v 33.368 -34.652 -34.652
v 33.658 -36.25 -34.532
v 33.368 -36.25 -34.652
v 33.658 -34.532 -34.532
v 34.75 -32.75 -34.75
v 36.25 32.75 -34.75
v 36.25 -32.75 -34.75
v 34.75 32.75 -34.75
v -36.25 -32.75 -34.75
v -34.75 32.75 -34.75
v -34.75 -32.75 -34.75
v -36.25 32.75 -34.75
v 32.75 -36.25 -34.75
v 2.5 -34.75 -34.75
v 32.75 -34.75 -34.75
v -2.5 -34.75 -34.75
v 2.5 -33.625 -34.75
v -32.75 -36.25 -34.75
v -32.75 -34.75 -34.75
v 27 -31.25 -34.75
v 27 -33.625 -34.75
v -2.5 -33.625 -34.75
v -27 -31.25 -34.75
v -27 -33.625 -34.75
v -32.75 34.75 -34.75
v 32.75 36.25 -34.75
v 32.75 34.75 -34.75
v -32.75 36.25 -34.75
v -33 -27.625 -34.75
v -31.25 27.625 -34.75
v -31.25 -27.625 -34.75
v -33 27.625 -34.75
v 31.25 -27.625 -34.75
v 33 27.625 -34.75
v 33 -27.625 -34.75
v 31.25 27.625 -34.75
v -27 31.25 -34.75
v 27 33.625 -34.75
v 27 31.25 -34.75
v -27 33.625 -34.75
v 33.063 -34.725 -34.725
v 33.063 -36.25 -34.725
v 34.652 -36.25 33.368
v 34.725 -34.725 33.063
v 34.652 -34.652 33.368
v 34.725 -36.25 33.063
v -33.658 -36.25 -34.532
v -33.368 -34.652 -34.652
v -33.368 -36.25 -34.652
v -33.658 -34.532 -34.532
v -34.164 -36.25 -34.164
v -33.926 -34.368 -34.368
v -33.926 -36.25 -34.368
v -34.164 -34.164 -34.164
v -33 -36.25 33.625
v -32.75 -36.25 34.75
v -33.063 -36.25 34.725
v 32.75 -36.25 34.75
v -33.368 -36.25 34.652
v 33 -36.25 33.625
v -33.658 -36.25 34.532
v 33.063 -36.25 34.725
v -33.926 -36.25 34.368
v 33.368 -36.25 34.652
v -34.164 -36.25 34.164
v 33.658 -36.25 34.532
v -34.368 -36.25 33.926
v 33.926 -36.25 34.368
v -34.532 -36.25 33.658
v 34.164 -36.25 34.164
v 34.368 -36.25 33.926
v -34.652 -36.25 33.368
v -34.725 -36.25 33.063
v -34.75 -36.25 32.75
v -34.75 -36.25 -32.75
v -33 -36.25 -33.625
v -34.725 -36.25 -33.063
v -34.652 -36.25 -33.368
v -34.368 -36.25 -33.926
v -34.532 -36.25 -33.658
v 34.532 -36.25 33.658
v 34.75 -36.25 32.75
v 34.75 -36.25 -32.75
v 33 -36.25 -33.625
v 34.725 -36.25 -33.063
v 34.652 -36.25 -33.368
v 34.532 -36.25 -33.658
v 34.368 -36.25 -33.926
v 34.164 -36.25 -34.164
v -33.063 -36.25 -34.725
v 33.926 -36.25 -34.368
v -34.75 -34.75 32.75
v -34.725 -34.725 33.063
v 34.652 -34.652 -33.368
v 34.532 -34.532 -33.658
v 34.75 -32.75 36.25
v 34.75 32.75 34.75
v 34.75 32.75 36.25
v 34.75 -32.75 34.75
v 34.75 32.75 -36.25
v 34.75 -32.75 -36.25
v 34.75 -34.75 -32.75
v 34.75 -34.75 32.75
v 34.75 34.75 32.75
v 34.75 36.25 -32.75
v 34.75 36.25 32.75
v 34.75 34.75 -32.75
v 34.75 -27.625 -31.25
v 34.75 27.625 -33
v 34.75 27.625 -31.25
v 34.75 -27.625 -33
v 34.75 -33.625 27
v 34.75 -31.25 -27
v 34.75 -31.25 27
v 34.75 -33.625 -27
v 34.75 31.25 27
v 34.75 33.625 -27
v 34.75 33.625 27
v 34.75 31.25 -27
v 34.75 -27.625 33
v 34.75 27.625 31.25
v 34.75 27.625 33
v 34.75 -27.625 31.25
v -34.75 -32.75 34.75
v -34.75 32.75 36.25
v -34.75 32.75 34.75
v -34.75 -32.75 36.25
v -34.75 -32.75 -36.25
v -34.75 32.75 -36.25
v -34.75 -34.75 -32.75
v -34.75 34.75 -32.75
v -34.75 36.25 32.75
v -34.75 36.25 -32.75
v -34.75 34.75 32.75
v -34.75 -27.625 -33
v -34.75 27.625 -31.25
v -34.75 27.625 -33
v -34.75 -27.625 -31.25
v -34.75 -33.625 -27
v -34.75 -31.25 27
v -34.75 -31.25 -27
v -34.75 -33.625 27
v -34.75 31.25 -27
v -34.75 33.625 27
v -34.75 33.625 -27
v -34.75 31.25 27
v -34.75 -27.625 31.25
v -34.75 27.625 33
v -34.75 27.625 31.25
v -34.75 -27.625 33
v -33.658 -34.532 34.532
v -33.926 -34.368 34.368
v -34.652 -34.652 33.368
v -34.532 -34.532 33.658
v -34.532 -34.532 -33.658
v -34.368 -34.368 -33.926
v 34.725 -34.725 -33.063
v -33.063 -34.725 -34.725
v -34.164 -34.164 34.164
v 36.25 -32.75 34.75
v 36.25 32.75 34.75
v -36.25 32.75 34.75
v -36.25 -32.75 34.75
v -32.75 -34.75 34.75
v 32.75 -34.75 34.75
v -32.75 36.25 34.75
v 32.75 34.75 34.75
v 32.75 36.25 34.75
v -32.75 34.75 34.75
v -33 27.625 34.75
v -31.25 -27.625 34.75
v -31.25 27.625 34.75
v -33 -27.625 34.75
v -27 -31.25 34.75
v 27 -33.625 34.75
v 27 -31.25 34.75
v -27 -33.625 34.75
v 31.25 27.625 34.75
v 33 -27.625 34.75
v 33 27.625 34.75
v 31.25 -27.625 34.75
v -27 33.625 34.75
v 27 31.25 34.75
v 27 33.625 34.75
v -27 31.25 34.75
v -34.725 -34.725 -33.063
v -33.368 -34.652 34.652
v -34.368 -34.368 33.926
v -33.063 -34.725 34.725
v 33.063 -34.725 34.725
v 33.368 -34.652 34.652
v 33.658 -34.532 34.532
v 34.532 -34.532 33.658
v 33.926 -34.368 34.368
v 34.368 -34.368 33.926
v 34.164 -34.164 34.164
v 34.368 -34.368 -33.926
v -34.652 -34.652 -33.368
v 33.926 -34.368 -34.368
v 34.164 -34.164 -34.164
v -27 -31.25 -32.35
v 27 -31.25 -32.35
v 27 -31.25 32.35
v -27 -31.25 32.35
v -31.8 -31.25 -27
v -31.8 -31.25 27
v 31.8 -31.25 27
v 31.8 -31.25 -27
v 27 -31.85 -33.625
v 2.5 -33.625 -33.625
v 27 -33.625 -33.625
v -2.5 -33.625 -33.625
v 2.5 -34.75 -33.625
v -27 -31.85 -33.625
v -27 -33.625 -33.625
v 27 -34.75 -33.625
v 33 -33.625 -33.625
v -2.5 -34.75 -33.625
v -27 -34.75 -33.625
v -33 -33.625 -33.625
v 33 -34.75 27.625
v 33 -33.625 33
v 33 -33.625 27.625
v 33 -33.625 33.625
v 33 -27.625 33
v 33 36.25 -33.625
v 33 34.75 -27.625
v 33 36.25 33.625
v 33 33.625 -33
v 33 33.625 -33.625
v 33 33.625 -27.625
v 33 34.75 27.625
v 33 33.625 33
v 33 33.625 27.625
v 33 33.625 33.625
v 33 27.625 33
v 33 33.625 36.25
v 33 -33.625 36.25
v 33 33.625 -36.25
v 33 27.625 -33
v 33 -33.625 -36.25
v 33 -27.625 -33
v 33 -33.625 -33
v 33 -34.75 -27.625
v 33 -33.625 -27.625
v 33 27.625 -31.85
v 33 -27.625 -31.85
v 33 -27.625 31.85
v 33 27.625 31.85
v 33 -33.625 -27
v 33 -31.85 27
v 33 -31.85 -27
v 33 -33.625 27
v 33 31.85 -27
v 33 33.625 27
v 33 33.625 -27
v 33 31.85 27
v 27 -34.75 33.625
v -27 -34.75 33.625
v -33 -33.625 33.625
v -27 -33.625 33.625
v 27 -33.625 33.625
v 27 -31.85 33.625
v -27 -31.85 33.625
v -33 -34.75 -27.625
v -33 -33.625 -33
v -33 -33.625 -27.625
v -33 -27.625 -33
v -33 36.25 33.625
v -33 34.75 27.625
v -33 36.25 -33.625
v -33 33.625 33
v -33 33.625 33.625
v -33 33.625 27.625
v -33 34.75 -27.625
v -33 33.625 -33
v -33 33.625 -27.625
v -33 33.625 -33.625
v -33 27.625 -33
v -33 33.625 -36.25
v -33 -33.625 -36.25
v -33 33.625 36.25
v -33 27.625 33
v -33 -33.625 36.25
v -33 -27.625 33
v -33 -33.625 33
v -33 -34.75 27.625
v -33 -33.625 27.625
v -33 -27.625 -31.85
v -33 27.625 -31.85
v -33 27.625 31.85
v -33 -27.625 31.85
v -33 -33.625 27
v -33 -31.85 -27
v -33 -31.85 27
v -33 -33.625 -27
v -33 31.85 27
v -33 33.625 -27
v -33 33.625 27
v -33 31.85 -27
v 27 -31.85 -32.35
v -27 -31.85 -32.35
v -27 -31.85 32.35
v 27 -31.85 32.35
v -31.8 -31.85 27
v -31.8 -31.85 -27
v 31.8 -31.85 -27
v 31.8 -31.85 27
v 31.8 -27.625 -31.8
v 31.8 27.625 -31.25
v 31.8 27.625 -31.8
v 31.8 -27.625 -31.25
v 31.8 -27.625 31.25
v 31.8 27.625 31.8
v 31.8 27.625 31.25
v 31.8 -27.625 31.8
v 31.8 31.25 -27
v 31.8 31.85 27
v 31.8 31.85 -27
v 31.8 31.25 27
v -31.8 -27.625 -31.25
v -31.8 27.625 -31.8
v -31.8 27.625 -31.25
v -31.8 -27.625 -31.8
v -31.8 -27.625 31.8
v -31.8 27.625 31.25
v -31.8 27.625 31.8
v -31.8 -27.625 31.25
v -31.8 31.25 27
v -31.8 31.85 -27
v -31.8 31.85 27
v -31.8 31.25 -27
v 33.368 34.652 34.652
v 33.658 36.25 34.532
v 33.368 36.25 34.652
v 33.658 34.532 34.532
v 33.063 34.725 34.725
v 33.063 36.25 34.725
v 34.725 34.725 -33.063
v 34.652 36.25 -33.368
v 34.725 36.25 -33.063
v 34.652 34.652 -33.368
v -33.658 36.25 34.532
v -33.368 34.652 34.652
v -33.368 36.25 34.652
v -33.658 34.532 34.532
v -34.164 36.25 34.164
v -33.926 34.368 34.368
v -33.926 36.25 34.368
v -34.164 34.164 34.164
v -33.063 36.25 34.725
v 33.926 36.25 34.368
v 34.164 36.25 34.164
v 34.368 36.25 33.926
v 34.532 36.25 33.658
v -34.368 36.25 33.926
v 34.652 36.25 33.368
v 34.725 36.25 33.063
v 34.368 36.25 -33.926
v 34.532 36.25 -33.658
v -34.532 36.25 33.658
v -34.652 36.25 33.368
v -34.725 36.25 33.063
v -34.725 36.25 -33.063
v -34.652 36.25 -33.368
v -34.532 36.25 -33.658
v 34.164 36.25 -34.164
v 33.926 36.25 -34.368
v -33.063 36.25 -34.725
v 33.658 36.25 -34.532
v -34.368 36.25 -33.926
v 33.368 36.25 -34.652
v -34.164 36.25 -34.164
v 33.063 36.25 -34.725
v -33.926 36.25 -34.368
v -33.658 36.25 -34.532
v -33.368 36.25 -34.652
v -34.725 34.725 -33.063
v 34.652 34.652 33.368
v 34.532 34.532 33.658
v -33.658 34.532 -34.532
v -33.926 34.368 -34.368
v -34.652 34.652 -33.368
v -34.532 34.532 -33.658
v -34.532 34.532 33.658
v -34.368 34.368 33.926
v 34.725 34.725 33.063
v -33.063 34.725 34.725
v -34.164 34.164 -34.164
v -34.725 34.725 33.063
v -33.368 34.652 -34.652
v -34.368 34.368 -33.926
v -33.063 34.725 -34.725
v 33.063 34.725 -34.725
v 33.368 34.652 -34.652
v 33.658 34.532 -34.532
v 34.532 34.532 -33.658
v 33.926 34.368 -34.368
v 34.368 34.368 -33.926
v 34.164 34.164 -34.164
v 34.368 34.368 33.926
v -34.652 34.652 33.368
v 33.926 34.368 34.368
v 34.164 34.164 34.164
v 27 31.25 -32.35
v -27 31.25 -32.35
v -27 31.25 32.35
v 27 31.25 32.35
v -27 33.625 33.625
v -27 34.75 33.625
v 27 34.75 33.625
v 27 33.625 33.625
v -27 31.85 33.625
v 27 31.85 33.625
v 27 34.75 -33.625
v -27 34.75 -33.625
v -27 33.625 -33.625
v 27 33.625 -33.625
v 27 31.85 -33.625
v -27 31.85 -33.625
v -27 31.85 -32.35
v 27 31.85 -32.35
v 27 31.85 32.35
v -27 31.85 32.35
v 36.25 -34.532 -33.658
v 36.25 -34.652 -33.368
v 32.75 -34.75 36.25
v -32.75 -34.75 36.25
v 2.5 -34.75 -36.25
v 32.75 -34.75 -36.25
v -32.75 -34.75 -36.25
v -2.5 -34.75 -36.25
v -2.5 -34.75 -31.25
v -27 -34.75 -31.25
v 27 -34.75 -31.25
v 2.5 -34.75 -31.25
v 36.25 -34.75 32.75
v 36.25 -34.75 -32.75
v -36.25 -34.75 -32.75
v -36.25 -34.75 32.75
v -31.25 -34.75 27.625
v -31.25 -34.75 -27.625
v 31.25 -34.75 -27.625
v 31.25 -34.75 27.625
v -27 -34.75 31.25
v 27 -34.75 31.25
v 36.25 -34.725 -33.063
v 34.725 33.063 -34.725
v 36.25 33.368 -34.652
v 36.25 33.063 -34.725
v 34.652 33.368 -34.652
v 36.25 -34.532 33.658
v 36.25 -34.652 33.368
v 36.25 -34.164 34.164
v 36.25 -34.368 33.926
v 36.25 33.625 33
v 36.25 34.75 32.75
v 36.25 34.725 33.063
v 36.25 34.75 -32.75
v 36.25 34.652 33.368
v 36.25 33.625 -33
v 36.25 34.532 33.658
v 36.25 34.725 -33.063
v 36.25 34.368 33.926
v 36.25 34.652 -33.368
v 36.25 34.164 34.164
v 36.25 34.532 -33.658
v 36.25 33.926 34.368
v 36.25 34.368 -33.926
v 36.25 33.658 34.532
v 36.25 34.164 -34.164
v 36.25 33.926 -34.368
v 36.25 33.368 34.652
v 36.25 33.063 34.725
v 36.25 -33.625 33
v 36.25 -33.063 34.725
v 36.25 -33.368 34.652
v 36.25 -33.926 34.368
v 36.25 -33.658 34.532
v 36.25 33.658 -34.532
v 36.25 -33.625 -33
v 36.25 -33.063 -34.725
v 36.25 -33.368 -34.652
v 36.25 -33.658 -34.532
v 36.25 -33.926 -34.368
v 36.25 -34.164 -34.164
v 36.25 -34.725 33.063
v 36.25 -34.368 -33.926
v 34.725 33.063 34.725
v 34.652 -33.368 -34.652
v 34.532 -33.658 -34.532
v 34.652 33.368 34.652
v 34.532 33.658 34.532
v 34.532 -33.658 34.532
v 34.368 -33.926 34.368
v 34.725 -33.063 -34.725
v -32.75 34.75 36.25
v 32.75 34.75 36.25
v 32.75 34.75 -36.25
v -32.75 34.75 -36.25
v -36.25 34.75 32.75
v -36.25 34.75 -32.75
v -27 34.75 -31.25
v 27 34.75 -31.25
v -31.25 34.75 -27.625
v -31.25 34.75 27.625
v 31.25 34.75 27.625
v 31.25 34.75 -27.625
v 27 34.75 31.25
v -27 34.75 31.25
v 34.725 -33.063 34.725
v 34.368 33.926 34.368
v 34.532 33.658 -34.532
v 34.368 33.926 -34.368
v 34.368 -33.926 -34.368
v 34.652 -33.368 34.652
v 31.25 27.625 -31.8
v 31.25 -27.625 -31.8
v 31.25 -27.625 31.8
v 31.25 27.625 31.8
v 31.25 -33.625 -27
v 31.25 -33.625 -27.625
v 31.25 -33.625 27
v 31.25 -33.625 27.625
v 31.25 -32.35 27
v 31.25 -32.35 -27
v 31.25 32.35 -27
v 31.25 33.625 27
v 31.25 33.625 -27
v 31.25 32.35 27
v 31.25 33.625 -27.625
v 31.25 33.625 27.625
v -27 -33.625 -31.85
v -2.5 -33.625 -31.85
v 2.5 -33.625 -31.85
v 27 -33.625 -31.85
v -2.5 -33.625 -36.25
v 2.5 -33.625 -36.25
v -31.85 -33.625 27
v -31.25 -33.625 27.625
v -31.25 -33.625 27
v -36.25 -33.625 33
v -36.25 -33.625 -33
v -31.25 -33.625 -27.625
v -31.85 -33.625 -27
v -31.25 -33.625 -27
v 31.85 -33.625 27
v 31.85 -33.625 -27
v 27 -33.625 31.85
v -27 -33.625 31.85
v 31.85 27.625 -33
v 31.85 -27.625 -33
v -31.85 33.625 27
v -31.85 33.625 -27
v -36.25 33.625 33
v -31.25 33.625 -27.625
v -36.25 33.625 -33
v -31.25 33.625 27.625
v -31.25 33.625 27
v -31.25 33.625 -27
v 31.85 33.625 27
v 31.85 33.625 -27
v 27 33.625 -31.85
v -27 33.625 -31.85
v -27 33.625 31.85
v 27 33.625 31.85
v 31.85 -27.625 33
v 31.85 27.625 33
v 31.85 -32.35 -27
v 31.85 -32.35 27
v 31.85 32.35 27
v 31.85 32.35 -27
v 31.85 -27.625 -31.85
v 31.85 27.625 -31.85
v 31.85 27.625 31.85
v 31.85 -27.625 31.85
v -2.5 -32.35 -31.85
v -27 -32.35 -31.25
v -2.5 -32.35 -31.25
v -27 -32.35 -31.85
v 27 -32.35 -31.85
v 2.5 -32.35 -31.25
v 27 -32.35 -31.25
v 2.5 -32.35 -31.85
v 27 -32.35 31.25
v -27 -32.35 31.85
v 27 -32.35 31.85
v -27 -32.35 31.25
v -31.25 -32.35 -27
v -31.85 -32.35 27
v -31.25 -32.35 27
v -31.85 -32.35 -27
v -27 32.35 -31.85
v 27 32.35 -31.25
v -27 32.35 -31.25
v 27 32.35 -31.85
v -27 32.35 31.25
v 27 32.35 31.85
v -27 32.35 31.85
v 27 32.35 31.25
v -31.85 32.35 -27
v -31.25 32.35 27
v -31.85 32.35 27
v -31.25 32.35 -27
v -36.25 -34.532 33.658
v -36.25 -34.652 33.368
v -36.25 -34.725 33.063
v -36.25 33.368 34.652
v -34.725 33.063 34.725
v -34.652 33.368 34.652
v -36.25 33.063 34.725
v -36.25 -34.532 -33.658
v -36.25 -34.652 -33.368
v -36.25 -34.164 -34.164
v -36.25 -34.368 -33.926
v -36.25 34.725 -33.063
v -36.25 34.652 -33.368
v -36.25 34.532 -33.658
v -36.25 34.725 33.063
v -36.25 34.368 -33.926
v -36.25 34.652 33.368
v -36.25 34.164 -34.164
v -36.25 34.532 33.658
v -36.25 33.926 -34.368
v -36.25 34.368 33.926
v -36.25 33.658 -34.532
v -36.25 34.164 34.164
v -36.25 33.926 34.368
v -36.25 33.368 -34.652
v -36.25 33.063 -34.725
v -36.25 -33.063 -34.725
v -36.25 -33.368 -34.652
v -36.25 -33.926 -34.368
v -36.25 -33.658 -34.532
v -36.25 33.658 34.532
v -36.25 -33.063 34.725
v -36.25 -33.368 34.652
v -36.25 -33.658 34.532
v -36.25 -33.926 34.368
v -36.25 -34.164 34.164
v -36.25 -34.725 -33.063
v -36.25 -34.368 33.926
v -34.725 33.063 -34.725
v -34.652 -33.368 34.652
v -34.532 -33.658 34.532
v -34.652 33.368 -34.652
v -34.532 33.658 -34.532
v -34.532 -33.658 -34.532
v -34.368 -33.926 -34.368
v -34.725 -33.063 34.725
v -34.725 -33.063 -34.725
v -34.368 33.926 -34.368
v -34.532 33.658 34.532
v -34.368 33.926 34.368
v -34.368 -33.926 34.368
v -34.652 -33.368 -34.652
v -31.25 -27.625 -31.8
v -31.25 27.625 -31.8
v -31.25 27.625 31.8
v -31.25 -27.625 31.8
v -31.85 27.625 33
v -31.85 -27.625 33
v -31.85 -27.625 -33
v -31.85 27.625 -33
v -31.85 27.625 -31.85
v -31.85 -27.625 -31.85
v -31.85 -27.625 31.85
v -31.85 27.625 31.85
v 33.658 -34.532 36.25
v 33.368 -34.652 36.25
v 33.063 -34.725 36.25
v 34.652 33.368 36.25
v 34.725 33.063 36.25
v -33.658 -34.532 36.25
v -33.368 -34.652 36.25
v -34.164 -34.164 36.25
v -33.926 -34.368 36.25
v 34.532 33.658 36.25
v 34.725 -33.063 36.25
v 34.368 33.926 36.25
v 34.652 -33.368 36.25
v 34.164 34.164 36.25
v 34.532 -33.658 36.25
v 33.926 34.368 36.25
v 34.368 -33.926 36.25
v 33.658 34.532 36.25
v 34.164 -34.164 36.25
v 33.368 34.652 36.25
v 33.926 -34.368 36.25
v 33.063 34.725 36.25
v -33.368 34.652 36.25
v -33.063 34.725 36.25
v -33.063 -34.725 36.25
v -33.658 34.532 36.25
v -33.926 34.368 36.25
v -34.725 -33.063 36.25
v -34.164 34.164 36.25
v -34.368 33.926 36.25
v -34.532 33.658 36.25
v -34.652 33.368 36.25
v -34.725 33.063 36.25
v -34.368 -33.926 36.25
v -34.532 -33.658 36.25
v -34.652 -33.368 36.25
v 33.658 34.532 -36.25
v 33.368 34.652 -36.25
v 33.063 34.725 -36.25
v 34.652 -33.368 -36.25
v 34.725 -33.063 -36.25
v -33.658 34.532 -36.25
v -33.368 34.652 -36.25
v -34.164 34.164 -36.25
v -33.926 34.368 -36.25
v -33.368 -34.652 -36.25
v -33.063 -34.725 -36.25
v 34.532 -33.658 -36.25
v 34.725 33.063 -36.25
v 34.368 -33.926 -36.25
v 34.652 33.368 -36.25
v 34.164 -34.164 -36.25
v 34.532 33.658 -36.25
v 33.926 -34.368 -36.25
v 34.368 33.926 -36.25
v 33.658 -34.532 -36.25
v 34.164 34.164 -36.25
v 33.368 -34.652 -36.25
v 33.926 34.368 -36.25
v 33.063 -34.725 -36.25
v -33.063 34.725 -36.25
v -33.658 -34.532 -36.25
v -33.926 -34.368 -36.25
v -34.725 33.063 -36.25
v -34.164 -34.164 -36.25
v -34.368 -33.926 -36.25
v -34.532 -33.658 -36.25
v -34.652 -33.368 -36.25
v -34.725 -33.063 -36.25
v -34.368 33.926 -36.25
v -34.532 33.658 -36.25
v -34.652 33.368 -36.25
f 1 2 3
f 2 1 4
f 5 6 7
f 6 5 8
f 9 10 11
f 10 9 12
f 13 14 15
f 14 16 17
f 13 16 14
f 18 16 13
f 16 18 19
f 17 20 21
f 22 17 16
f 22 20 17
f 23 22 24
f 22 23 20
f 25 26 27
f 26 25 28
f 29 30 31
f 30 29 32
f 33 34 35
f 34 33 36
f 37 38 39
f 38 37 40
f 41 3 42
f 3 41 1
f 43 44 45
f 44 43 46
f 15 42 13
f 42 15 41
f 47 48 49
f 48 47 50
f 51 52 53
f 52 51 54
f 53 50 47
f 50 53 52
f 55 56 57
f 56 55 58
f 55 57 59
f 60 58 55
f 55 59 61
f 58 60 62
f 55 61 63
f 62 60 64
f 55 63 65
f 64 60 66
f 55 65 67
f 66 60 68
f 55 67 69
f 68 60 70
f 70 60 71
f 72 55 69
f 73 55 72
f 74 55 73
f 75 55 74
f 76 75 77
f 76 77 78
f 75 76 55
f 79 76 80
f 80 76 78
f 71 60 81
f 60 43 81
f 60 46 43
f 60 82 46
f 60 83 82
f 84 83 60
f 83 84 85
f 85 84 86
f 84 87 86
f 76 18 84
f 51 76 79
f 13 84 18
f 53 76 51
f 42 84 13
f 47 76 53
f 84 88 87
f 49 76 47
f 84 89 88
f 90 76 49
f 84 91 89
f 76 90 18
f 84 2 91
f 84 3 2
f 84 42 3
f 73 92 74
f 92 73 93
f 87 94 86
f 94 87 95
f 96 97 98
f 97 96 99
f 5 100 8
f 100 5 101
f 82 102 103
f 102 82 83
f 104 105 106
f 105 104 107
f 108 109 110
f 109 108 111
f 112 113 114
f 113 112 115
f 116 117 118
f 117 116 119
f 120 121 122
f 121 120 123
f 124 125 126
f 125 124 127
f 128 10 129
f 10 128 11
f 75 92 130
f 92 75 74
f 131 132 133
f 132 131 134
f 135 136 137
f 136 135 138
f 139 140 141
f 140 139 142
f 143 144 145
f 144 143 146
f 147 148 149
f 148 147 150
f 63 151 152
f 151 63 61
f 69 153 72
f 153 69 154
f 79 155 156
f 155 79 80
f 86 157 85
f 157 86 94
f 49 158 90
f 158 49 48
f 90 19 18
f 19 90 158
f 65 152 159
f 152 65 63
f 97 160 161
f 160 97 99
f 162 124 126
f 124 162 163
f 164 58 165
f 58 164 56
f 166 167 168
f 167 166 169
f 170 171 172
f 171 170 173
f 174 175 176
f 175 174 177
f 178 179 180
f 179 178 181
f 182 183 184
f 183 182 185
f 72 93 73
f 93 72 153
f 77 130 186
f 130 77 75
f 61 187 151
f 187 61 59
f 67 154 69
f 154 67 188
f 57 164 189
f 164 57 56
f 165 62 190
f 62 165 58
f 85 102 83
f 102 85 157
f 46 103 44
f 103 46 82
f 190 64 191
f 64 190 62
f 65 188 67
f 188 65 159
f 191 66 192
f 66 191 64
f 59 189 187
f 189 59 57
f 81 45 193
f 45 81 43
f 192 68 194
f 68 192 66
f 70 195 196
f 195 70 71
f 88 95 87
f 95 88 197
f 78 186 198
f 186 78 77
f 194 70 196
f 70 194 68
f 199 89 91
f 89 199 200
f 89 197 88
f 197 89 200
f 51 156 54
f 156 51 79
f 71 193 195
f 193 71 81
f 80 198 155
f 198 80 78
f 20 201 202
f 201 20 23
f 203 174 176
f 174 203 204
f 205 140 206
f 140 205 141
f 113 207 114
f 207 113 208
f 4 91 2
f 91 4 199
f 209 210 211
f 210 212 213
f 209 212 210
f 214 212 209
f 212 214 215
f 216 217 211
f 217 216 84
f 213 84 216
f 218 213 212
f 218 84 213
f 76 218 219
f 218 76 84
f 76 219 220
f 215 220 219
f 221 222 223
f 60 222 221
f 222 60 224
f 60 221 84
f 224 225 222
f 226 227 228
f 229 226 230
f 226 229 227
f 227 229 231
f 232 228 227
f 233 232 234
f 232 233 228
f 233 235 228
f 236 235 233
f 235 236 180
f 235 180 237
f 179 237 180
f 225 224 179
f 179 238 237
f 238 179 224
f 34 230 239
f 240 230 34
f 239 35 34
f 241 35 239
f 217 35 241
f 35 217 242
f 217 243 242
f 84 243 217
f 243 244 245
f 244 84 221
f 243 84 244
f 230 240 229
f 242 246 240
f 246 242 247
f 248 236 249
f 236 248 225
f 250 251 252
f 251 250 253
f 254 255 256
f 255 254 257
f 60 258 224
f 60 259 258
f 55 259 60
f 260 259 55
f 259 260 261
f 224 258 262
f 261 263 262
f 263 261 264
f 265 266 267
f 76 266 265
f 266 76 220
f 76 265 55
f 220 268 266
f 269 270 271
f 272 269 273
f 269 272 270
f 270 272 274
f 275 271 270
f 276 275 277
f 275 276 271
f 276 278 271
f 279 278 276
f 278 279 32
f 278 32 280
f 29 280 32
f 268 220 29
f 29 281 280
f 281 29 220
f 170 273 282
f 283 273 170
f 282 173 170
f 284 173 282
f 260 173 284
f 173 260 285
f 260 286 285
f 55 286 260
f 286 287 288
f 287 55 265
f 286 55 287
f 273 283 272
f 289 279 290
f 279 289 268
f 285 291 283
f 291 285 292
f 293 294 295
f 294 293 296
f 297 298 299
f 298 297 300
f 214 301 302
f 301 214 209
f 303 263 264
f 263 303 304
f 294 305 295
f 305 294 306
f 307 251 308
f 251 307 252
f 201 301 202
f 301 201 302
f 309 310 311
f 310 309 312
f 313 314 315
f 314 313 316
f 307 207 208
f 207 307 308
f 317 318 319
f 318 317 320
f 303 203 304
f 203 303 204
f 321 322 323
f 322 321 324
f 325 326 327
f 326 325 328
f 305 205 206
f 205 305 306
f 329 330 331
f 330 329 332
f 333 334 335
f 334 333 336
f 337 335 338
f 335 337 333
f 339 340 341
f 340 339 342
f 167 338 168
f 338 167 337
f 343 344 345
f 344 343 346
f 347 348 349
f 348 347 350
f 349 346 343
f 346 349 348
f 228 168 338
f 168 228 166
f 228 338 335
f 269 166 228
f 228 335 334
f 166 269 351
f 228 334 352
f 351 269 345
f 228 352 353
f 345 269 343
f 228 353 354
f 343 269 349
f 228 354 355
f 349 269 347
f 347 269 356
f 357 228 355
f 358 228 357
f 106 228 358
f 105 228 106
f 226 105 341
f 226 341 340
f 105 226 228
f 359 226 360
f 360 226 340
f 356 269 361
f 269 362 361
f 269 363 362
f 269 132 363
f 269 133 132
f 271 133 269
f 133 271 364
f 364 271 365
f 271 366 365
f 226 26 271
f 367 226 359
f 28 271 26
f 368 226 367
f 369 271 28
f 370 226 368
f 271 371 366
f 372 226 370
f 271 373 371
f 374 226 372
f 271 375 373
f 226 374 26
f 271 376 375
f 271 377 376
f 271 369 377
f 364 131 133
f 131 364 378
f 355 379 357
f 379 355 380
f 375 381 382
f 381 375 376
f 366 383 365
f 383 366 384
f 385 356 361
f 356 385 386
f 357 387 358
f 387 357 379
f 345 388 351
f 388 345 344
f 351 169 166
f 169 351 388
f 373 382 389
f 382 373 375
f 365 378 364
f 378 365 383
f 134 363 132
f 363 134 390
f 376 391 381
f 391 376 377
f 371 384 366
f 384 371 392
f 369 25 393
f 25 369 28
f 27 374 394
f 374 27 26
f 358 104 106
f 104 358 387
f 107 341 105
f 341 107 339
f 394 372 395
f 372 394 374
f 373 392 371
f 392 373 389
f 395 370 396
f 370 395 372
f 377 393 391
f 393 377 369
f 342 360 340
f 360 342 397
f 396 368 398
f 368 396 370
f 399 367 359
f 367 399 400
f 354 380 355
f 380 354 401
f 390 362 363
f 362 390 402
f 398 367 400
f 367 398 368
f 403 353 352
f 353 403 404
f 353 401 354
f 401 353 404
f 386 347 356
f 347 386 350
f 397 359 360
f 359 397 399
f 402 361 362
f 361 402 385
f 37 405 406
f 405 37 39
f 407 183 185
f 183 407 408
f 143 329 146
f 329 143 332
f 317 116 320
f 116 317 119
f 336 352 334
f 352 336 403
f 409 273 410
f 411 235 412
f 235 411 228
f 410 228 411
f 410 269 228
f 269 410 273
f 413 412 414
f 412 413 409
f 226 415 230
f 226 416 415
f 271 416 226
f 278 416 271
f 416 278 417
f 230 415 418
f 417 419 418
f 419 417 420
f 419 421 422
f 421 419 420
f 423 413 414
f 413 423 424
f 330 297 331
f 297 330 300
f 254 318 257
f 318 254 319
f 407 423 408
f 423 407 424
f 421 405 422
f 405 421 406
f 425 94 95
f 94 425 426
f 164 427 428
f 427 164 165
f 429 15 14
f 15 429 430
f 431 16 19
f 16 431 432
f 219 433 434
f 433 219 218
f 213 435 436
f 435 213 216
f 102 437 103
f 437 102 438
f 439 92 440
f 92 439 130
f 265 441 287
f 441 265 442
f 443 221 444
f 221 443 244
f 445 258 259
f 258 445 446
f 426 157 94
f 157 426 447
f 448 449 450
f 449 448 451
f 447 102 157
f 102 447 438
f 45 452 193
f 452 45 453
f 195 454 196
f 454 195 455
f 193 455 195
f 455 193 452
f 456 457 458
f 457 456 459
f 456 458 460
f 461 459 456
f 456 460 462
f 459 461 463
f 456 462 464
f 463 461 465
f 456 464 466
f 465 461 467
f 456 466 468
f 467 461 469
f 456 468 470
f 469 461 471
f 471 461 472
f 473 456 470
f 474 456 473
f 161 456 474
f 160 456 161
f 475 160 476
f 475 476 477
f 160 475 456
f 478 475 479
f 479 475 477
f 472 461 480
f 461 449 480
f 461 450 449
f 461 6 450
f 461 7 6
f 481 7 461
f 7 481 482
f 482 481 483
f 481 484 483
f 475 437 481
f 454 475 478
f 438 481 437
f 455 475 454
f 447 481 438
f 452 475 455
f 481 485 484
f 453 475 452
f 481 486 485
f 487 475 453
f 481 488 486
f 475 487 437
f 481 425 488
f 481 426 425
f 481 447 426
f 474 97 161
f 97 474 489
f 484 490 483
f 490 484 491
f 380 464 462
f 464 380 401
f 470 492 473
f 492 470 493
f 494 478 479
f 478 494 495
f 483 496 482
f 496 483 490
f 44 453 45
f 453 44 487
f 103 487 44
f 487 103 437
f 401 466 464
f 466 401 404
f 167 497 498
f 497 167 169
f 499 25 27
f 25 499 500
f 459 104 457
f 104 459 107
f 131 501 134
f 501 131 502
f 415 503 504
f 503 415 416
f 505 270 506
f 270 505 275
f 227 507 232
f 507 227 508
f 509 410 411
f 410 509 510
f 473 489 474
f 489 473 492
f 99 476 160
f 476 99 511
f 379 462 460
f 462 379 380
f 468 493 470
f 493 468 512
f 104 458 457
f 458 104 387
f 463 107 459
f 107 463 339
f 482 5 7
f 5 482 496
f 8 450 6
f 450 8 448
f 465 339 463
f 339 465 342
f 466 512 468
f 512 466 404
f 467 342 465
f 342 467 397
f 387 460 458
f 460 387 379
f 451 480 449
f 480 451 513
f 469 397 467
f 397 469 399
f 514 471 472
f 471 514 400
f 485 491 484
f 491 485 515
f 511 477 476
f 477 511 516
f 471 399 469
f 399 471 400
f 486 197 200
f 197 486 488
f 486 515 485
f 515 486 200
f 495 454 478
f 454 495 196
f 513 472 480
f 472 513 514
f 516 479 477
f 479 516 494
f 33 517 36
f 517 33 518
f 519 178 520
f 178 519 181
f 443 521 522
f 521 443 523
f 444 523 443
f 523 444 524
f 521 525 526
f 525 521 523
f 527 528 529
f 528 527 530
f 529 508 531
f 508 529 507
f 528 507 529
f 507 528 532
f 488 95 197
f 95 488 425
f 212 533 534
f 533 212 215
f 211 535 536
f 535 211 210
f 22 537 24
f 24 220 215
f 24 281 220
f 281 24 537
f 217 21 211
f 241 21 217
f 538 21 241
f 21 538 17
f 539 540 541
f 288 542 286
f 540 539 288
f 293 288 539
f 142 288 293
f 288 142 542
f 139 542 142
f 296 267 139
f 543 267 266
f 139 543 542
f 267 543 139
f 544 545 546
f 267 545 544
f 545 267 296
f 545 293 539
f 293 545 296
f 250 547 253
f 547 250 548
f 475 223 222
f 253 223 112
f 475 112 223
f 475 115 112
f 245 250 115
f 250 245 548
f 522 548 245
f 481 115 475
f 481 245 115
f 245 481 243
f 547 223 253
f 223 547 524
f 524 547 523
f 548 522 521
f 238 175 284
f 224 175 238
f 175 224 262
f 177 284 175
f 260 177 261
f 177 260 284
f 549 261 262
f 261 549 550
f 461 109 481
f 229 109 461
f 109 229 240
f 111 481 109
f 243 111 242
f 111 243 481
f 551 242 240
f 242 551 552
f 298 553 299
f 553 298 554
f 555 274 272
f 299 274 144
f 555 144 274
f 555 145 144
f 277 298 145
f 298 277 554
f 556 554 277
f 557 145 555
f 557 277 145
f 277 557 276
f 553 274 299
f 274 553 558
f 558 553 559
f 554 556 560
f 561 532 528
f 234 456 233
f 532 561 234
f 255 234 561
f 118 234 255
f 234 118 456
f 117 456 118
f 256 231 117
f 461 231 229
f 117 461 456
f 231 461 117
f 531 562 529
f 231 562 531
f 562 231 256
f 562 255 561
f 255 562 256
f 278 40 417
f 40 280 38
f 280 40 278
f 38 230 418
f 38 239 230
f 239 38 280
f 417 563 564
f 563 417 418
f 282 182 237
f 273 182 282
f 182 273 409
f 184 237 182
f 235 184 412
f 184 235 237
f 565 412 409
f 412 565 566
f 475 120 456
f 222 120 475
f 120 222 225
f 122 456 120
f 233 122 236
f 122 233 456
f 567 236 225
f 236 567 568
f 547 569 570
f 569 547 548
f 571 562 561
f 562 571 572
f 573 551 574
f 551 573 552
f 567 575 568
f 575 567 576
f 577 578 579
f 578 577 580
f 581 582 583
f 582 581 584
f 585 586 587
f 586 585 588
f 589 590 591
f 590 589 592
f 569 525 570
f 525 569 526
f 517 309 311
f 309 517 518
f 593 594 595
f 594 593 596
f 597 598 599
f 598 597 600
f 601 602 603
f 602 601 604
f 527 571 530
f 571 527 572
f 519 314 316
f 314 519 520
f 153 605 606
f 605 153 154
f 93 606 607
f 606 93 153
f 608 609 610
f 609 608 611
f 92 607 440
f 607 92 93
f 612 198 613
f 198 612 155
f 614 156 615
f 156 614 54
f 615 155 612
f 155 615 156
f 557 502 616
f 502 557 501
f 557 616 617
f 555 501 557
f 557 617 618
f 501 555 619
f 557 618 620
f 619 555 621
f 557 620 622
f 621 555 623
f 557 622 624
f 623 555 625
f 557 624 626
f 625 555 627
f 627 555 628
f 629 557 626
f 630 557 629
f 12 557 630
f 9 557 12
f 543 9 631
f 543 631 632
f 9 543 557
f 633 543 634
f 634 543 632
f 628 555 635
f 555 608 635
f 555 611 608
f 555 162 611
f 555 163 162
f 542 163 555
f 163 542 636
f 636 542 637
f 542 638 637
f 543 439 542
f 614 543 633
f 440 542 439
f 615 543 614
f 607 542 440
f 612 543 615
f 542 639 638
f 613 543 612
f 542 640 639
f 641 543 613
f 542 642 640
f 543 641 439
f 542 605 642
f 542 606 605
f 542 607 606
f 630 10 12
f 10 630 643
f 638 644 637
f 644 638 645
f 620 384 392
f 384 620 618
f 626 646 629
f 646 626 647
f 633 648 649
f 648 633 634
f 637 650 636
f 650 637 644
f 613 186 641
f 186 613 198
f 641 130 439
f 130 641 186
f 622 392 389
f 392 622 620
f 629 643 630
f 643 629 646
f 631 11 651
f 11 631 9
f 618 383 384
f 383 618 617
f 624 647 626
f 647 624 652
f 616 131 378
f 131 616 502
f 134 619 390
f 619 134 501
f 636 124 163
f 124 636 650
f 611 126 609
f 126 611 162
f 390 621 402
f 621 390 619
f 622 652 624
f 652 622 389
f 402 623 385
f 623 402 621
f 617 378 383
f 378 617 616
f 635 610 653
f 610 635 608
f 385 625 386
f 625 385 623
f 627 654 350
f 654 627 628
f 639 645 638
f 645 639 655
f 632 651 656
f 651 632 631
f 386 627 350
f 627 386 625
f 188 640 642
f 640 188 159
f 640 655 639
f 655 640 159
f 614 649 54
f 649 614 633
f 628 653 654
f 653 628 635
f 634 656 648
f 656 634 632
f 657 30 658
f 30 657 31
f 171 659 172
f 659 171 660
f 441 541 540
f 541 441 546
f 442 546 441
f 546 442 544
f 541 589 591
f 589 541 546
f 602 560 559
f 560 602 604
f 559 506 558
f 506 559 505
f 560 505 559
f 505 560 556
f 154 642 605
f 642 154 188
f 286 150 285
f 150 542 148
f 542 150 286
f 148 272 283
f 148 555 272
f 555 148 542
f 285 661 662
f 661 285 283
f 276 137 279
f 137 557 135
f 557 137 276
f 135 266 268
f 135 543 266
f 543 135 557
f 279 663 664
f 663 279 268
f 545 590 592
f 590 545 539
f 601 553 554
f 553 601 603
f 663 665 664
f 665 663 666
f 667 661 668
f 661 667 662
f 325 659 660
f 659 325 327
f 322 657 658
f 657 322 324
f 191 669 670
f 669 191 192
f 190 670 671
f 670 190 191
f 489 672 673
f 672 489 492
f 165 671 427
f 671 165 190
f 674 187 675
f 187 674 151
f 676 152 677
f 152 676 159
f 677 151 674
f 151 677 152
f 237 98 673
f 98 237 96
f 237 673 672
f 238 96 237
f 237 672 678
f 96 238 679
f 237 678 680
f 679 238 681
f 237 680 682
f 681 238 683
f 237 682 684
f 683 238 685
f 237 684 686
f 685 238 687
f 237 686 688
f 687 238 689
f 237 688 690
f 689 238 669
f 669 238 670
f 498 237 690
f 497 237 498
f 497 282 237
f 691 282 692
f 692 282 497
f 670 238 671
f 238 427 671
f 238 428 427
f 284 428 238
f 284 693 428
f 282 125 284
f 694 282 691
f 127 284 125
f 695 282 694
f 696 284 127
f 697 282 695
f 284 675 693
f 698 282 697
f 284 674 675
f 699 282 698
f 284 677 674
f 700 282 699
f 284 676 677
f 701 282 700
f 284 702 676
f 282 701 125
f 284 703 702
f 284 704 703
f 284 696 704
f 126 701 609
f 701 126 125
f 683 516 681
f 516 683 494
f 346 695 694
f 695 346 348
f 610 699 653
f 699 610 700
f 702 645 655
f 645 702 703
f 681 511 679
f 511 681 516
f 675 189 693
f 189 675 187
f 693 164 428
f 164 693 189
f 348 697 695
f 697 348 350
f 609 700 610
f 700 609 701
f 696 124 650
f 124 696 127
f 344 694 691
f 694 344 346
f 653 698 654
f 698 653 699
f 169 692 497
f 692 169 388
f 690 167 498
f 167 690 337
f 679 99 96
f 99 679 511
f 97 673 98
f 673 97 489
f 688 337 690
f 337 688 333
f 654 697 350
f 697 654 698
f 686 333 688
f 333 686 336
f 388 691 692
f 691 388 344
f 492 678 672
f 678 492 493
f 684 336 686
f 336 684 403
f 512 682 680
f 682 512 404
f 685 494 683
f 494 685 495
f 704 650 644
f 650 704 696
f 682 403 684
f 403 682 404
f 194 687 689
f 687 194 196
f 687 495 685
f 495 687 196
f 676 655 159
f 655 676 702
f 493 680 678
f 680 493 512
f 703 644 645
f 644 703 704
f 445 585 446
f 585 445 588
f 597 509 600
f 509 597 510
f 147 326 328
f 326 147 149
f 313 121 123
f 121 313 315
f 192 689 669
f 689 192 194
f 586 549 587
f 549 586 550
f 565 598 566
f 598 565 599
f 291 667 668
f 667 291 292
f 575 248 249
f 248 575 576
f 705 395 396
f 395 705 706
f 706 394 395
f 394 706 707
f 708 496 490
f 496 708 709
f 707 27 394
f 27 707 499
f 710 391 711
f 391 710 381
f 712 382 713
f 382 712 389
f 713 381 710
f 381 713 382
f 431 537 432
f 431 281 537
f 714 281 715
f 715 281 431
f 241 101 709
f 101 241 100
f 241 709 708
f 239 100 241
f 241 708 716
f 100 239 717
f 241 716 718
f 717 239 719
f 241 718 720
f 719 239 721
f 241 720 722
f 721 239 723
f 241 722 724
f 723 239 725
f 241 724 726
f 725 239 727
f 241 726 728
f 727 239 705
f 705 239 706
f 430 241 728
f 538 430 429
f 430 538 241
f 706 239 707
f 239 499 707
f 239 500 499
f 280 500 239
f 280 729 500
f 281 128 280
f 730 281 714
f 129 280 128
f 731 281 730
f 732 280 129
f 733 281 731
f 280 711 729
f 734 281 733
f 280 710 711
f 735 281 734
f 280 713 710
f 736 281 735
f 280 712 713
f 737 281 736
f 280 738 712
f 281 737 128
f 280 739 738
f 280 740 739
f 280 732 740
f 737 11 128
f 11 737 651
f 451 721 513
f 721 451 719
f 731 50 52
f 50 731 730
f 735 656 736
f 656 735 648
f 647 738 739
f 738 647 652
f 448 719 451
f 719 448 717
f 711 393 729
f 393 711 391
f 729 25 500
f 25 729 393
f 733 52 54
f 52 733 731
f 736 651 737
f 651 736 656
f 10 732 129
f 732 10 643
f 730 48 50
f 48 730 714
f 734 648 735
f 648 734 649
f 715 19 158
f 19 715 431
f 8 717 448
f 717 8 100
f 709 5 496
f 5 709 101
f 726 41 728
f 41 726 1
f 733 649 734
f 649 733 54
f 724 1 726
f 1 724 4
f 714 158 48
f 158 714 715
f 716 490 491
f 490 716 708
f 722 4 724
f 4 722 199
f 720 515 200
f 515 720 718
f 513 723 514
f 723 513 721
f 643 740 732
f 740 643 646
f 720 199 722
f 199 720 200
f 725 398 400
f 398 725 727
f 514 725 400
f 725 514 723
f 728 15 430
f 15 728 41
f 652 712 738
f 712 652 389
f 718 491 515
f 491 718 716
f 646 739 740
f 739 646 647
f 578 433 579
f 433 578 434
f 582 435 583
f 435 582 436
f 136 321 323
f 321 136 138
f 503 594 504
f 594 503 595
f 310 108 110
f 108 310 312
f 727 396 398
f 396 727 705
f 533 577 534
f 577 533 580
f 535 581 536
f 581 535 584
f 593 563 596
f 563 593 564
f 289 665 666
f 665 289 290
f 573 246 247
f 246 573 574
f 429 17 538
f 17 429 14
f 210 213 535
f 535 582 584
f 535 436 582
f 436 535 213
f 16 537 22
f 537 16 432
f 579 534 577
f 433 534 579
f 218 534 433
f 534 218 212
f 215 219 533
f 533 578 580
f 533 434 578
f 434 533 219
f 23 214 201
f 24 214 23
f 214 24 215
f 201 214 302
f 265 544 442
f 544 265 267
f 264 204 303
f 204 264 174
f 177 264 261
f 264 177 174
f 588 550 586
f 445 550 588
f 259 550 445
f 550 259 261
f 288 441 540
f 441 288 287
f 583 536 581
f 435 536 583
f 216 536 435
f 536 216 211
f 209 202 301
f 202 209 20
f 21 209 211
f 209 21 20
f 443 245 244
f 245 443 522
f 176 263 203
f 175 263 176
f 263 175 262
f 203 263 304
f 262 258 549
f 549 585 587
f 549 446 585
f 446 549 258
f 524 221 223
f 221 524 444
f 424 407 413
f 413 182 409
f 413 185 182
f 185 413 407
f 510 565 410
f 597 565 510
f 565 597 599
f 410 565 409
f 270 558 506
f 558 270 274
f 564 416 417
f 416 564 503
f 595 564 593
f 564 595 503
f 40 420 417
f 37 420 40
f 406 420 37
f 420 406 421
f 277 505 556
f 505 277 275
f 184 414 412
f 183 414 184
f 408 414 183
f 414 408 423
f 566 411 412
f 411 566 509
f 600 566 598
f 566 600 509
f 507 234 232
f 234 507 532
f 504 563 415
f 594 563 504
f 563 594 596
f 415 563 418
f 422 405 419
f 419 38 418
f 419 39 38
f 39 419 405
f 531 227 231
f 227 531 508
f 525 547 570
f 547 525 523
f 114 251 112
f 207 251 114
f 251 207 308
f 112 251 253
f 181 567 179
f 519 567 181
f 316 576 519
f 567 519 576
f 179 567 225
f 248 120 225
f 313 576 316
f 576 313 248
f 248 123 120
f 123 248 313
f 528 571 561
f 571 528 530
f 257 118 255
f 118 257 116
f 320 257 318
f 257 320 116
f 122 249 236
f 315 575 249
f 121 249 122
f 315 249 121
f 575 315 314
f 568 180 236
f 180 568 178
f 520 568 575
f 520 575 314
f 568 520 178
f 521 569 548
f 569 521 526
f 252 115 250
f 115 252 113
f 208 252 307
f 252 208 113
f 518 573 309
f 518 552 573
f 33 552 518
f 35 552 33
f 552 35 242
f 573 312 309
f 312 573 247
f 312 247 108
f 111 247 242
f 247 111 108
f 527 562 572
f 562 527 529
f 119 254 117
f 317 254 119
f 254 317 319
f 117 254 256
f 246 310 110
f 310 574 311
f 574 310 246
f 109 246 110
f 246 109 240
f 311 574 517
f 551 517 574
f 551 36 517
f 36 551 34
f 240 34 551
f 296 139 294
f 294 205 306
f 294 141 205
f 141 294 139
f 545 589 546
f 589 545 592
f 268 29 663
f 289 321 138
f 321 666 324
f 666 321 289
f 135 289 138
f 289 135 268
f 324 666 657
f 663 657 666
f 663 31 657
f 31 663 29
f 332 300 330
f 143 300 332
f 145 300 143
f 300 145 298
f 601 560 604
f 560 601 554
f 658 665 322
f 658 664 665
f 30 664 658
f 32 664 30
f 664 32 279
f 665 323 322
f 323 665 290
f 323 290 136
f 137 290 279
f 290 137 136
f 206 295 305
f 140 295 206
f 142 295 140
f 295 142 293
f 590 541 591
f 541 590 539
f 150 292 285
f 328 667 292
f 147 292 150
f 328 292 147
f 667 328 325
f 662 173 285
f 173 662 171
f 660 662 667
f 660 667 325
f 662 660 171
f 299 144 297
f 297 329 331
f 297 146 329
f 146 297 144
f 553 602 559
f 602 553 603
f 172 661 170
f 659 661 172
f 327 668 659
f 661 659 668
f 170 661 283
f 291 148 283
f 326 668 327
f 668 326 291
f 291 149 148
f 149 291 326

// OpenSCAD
/*
  NeoPixel Matrix Cube

  - Six overlapping push-fit face frames
  - Faces moved 3.5mm towards cube centre
  - PCB retaining lip is 0.6mm deep
  - PCB corner relief is cut AFTER cube assembly
  - Relief enters from the OUTSIDE/front of every face
  - Outer structural cube frame remains intact
*/

mode = "cube"; // "frame" or "cube"


// ---------- PCB ----------

pcb_w = 65.6;
pcb_h = 66.7;

pcb_w_clearance = 0.40;
pcb_h_clearance = 0.55;


// ---------- FRAME ----------

outer_size = 69.5;
frame_depth = 4.0;

// Extra inward depth to help adjacent faces fuse
extra_inward_depth = 1.0;
cube_frame_depth = frame_depth + extra_inward_depth;

// Move each complete face towards the cube centre
face_inset = 3.5;

// PCB retaining lip
rear_lip_height = 0.6;
rear_lip_width = 1.0;

outer_corner_radius = 2.0;
pocket_corner_radius = 0.35;


// ---------- PCB CORNER RELIEF ----------

// Size of clearance at each PCB corner
lip_corner_relief = 6.0;

// How far the cutter continues behind the retaining lip
// into the cube interior
corner_back_clearance = 1.5;


// ---------- REMOVAL NOTCH ----------

notch_enabled = true;
notch_on_face = "bottom";

notch_width = 5.0;
notch_depth = 2.5;


eps = 0.1;
$fn = 40;


// ---------- SHAPES ----------

module rounded_rect(w, h, r) {
    offset(r = r)
        square(
            [w - r * 2, h - r * 2],
            center = true
        );
}


// ---------- FACE FRAME ----------

module matrix_frame_front_load(
    depth = frame_depth,
    with_notch = false
) {
    difference() {

        // Main frame body
        linear_extrude(depth)
            rounded_rect(
                outer_size,
                outer_size,
                outer_corner_radius
            );

        // PCB pocket.
        // The PCB enters from the high-Z/front side.
        translate([0, 0, rear_lip_height])
            linear_extrude(
                depth - rear_lip_height + eps
            )
                rounded_rect(
                    pcb_w + pcb_w_clearance,
                    pcb_h + pcb_h_clearance,
                    pocket_corner_radius
                );

        // Through-opening, leaving the retaining lip
        translate([0, 0, -eps])
            linear_extrude(
                rear_lip_height + eps * 2
            )
                rounded_rect(
                    pcb_w - rear_lip_width * 2,
                    pcb_h - rear_lip_width * 2,
                    pocket_corner_radius
                );

        // Screwdriver removal notch
        if (with_notch) {
            translate([
                0,
                outer_size / 2 - notch_depth / 2,
                depth / 2
            ])
                cube(
                    [
                        notch_width,
                        notch_depth + eps,
                        depth + eps * 2
                    ],
                    center = true
                );
        }
    }
}


// ---------- CORNER RELIEF FOR ONE FACE ----------

module face_corner_relief_cuts(depth = cube_frame_depth) {
    /*
      Local face coordinates:

        Z = depth:
            visible outside/front of the cube

        Z = rear_lip_height:
            front surface of the PCB retaining lip

        Z = 0:
            rear/inside surface of the retaining lip

      Each cutter enters from the visible front, passes
      through the PCB corner and lip, then continues a
      short distance into the cube.

      Its X/Y footprint stays entirely within the PCB
      pocket, so it does not cut the outer radial frame.
    */

    pocket_w = pcb_w + pcb_w_clearance;
    pocket_h = pcb_h + pcb_h_clearance;

    relief_x =
        pocket_w / 2
        - lip_corner_relief / 2;

    relief_y =
        pocket_h / 2
        - lip_corner_relief / 2;

    // Start slightly behind the lip
    cutter_low_z =
        -corner_back_clearance;

    // Continue completely through the visible/front face
    cutter_high_z =
        depth + eps;

    cutter_depth =
        cutter_high_z - cutter_low_z;

    cutter_centre_z =
        (cutter_high_z + cutter_low_z) / 2;

    for (x_sign = [-1, 1])
        for (y_sign = [-1, 1])
            translate([
                x_sign * relief_x,
                y_sign * relief_y,
                cutter_centre_z
            ])
                cube(
                    [
                        lip_corner_relief,
                        lip_corner_relief,
                        cutter_depth
                    ],
                    center = true
                );
}


// ---------- SIX FACE FRAMES ----------

module six_face_frames() {
    half = outer_size / 2;

    union() {

        // Front
        translate([0, -half + face_inset, 0])
            rotate([90, 0, 0])
                matrix_frame_front_load(
                    cube_frame_depth,
                    notch_enabled &&
                    notch_on_face == "front"
                );

        // Back
        translate([0, half - face_inset, 0])
            rotate([-90, 0, 0])
                matrix_frame_front_load(
                    cube_frame_depth,
                    notch_enabled &&
                    notch_on_face == "back"
                );

        // Right
        translate([half - face_inset, 0, 0])
            rotate([0, 90, 0])
                matrix_frame_front_load(
                    cube_frame_depth,
                    notch_enabled &&
                    notch_on_face == "right"
                );

        // Left
        translate([-half + face_inset, 0, 0])
            rotate([0, -90, 0])
                matrix_frame_front_load(
                    cube_frame_depth,
                    notch_enabled &&
                    notch_on_face == "left"
                );

        // Top
        translate([0, 0, half - face_inset])
            matrix_frame_front_load(
                cube_frame_depth,
                notch_enabled &&
                notch_on_face == "top"
            );

        // Bottom
        translate([0, 0, -half + face_inset])
            rotate([180, 0, 0])
                matrix_frame_front_load(
                    cube_frame_depth,
                    notch_enabled &&
                    notch_on_face == "bottom"
                );
    }
}


// ---------- POST-ASSEMBLY RELIEF CUTTERS ----------

module assembled_cube_corner_reliefs() {
    half = outer_size / 2;

    // Front
    translate([0, -half + face_inset, 0])
        rotate([90, 0, 0])
            face_corner_relief_cuts(cube_frame_depth);

    // Back
    translate([0, half - face_inset, 0])
        rotate([-90, 0, 0])
            face_corner_relief_cuts(cube_frame_depth);

    // Right
    translate([half - face_inset, 0, 0])
        rotate([0, 90, 0])
            face_corner_relief_cuts(cube_frame_depth);

    // Left
    translate([-half + face_inset, 0, 0])
        rotate([0, -90, 0])
            face_corner_relief_cuts(cube_frame_depth);

    // Top
    translate([0, 0, half - face_inset])
        face_corner_relief_cuts(cube_frame_depth);

    // Bottom
    translate([0, 0, -half + face_inset])
        rotate([180, 0, 0])
            face_corner_relief_cuts(cube_frame_depth);
}


// ---------- COMPLETE CUBE ----------

module cube_frame() {
    difference() {

        // First assemble all six overlapping faces
        six_face_frames();

        // Then cut the solder-pad clearances from
        // the outside/front of all six faces
        assembled_cube_corner_reliefs();
    }
}


// ---------- SINGLE FRAME PREVIEW ----------

module single_frame_preview() {
    difference() {

        matrix_frame_front_load(
            frame_depth,
            notch_enabled
        );

        face_corner_relief_cuts(frame_depth);
    }
}


// ---------- OUTPUT ----------

if (mode == "frame") {
    single_frame_preview();
}

if (mode == "cube") {
    cube_frame();
}
